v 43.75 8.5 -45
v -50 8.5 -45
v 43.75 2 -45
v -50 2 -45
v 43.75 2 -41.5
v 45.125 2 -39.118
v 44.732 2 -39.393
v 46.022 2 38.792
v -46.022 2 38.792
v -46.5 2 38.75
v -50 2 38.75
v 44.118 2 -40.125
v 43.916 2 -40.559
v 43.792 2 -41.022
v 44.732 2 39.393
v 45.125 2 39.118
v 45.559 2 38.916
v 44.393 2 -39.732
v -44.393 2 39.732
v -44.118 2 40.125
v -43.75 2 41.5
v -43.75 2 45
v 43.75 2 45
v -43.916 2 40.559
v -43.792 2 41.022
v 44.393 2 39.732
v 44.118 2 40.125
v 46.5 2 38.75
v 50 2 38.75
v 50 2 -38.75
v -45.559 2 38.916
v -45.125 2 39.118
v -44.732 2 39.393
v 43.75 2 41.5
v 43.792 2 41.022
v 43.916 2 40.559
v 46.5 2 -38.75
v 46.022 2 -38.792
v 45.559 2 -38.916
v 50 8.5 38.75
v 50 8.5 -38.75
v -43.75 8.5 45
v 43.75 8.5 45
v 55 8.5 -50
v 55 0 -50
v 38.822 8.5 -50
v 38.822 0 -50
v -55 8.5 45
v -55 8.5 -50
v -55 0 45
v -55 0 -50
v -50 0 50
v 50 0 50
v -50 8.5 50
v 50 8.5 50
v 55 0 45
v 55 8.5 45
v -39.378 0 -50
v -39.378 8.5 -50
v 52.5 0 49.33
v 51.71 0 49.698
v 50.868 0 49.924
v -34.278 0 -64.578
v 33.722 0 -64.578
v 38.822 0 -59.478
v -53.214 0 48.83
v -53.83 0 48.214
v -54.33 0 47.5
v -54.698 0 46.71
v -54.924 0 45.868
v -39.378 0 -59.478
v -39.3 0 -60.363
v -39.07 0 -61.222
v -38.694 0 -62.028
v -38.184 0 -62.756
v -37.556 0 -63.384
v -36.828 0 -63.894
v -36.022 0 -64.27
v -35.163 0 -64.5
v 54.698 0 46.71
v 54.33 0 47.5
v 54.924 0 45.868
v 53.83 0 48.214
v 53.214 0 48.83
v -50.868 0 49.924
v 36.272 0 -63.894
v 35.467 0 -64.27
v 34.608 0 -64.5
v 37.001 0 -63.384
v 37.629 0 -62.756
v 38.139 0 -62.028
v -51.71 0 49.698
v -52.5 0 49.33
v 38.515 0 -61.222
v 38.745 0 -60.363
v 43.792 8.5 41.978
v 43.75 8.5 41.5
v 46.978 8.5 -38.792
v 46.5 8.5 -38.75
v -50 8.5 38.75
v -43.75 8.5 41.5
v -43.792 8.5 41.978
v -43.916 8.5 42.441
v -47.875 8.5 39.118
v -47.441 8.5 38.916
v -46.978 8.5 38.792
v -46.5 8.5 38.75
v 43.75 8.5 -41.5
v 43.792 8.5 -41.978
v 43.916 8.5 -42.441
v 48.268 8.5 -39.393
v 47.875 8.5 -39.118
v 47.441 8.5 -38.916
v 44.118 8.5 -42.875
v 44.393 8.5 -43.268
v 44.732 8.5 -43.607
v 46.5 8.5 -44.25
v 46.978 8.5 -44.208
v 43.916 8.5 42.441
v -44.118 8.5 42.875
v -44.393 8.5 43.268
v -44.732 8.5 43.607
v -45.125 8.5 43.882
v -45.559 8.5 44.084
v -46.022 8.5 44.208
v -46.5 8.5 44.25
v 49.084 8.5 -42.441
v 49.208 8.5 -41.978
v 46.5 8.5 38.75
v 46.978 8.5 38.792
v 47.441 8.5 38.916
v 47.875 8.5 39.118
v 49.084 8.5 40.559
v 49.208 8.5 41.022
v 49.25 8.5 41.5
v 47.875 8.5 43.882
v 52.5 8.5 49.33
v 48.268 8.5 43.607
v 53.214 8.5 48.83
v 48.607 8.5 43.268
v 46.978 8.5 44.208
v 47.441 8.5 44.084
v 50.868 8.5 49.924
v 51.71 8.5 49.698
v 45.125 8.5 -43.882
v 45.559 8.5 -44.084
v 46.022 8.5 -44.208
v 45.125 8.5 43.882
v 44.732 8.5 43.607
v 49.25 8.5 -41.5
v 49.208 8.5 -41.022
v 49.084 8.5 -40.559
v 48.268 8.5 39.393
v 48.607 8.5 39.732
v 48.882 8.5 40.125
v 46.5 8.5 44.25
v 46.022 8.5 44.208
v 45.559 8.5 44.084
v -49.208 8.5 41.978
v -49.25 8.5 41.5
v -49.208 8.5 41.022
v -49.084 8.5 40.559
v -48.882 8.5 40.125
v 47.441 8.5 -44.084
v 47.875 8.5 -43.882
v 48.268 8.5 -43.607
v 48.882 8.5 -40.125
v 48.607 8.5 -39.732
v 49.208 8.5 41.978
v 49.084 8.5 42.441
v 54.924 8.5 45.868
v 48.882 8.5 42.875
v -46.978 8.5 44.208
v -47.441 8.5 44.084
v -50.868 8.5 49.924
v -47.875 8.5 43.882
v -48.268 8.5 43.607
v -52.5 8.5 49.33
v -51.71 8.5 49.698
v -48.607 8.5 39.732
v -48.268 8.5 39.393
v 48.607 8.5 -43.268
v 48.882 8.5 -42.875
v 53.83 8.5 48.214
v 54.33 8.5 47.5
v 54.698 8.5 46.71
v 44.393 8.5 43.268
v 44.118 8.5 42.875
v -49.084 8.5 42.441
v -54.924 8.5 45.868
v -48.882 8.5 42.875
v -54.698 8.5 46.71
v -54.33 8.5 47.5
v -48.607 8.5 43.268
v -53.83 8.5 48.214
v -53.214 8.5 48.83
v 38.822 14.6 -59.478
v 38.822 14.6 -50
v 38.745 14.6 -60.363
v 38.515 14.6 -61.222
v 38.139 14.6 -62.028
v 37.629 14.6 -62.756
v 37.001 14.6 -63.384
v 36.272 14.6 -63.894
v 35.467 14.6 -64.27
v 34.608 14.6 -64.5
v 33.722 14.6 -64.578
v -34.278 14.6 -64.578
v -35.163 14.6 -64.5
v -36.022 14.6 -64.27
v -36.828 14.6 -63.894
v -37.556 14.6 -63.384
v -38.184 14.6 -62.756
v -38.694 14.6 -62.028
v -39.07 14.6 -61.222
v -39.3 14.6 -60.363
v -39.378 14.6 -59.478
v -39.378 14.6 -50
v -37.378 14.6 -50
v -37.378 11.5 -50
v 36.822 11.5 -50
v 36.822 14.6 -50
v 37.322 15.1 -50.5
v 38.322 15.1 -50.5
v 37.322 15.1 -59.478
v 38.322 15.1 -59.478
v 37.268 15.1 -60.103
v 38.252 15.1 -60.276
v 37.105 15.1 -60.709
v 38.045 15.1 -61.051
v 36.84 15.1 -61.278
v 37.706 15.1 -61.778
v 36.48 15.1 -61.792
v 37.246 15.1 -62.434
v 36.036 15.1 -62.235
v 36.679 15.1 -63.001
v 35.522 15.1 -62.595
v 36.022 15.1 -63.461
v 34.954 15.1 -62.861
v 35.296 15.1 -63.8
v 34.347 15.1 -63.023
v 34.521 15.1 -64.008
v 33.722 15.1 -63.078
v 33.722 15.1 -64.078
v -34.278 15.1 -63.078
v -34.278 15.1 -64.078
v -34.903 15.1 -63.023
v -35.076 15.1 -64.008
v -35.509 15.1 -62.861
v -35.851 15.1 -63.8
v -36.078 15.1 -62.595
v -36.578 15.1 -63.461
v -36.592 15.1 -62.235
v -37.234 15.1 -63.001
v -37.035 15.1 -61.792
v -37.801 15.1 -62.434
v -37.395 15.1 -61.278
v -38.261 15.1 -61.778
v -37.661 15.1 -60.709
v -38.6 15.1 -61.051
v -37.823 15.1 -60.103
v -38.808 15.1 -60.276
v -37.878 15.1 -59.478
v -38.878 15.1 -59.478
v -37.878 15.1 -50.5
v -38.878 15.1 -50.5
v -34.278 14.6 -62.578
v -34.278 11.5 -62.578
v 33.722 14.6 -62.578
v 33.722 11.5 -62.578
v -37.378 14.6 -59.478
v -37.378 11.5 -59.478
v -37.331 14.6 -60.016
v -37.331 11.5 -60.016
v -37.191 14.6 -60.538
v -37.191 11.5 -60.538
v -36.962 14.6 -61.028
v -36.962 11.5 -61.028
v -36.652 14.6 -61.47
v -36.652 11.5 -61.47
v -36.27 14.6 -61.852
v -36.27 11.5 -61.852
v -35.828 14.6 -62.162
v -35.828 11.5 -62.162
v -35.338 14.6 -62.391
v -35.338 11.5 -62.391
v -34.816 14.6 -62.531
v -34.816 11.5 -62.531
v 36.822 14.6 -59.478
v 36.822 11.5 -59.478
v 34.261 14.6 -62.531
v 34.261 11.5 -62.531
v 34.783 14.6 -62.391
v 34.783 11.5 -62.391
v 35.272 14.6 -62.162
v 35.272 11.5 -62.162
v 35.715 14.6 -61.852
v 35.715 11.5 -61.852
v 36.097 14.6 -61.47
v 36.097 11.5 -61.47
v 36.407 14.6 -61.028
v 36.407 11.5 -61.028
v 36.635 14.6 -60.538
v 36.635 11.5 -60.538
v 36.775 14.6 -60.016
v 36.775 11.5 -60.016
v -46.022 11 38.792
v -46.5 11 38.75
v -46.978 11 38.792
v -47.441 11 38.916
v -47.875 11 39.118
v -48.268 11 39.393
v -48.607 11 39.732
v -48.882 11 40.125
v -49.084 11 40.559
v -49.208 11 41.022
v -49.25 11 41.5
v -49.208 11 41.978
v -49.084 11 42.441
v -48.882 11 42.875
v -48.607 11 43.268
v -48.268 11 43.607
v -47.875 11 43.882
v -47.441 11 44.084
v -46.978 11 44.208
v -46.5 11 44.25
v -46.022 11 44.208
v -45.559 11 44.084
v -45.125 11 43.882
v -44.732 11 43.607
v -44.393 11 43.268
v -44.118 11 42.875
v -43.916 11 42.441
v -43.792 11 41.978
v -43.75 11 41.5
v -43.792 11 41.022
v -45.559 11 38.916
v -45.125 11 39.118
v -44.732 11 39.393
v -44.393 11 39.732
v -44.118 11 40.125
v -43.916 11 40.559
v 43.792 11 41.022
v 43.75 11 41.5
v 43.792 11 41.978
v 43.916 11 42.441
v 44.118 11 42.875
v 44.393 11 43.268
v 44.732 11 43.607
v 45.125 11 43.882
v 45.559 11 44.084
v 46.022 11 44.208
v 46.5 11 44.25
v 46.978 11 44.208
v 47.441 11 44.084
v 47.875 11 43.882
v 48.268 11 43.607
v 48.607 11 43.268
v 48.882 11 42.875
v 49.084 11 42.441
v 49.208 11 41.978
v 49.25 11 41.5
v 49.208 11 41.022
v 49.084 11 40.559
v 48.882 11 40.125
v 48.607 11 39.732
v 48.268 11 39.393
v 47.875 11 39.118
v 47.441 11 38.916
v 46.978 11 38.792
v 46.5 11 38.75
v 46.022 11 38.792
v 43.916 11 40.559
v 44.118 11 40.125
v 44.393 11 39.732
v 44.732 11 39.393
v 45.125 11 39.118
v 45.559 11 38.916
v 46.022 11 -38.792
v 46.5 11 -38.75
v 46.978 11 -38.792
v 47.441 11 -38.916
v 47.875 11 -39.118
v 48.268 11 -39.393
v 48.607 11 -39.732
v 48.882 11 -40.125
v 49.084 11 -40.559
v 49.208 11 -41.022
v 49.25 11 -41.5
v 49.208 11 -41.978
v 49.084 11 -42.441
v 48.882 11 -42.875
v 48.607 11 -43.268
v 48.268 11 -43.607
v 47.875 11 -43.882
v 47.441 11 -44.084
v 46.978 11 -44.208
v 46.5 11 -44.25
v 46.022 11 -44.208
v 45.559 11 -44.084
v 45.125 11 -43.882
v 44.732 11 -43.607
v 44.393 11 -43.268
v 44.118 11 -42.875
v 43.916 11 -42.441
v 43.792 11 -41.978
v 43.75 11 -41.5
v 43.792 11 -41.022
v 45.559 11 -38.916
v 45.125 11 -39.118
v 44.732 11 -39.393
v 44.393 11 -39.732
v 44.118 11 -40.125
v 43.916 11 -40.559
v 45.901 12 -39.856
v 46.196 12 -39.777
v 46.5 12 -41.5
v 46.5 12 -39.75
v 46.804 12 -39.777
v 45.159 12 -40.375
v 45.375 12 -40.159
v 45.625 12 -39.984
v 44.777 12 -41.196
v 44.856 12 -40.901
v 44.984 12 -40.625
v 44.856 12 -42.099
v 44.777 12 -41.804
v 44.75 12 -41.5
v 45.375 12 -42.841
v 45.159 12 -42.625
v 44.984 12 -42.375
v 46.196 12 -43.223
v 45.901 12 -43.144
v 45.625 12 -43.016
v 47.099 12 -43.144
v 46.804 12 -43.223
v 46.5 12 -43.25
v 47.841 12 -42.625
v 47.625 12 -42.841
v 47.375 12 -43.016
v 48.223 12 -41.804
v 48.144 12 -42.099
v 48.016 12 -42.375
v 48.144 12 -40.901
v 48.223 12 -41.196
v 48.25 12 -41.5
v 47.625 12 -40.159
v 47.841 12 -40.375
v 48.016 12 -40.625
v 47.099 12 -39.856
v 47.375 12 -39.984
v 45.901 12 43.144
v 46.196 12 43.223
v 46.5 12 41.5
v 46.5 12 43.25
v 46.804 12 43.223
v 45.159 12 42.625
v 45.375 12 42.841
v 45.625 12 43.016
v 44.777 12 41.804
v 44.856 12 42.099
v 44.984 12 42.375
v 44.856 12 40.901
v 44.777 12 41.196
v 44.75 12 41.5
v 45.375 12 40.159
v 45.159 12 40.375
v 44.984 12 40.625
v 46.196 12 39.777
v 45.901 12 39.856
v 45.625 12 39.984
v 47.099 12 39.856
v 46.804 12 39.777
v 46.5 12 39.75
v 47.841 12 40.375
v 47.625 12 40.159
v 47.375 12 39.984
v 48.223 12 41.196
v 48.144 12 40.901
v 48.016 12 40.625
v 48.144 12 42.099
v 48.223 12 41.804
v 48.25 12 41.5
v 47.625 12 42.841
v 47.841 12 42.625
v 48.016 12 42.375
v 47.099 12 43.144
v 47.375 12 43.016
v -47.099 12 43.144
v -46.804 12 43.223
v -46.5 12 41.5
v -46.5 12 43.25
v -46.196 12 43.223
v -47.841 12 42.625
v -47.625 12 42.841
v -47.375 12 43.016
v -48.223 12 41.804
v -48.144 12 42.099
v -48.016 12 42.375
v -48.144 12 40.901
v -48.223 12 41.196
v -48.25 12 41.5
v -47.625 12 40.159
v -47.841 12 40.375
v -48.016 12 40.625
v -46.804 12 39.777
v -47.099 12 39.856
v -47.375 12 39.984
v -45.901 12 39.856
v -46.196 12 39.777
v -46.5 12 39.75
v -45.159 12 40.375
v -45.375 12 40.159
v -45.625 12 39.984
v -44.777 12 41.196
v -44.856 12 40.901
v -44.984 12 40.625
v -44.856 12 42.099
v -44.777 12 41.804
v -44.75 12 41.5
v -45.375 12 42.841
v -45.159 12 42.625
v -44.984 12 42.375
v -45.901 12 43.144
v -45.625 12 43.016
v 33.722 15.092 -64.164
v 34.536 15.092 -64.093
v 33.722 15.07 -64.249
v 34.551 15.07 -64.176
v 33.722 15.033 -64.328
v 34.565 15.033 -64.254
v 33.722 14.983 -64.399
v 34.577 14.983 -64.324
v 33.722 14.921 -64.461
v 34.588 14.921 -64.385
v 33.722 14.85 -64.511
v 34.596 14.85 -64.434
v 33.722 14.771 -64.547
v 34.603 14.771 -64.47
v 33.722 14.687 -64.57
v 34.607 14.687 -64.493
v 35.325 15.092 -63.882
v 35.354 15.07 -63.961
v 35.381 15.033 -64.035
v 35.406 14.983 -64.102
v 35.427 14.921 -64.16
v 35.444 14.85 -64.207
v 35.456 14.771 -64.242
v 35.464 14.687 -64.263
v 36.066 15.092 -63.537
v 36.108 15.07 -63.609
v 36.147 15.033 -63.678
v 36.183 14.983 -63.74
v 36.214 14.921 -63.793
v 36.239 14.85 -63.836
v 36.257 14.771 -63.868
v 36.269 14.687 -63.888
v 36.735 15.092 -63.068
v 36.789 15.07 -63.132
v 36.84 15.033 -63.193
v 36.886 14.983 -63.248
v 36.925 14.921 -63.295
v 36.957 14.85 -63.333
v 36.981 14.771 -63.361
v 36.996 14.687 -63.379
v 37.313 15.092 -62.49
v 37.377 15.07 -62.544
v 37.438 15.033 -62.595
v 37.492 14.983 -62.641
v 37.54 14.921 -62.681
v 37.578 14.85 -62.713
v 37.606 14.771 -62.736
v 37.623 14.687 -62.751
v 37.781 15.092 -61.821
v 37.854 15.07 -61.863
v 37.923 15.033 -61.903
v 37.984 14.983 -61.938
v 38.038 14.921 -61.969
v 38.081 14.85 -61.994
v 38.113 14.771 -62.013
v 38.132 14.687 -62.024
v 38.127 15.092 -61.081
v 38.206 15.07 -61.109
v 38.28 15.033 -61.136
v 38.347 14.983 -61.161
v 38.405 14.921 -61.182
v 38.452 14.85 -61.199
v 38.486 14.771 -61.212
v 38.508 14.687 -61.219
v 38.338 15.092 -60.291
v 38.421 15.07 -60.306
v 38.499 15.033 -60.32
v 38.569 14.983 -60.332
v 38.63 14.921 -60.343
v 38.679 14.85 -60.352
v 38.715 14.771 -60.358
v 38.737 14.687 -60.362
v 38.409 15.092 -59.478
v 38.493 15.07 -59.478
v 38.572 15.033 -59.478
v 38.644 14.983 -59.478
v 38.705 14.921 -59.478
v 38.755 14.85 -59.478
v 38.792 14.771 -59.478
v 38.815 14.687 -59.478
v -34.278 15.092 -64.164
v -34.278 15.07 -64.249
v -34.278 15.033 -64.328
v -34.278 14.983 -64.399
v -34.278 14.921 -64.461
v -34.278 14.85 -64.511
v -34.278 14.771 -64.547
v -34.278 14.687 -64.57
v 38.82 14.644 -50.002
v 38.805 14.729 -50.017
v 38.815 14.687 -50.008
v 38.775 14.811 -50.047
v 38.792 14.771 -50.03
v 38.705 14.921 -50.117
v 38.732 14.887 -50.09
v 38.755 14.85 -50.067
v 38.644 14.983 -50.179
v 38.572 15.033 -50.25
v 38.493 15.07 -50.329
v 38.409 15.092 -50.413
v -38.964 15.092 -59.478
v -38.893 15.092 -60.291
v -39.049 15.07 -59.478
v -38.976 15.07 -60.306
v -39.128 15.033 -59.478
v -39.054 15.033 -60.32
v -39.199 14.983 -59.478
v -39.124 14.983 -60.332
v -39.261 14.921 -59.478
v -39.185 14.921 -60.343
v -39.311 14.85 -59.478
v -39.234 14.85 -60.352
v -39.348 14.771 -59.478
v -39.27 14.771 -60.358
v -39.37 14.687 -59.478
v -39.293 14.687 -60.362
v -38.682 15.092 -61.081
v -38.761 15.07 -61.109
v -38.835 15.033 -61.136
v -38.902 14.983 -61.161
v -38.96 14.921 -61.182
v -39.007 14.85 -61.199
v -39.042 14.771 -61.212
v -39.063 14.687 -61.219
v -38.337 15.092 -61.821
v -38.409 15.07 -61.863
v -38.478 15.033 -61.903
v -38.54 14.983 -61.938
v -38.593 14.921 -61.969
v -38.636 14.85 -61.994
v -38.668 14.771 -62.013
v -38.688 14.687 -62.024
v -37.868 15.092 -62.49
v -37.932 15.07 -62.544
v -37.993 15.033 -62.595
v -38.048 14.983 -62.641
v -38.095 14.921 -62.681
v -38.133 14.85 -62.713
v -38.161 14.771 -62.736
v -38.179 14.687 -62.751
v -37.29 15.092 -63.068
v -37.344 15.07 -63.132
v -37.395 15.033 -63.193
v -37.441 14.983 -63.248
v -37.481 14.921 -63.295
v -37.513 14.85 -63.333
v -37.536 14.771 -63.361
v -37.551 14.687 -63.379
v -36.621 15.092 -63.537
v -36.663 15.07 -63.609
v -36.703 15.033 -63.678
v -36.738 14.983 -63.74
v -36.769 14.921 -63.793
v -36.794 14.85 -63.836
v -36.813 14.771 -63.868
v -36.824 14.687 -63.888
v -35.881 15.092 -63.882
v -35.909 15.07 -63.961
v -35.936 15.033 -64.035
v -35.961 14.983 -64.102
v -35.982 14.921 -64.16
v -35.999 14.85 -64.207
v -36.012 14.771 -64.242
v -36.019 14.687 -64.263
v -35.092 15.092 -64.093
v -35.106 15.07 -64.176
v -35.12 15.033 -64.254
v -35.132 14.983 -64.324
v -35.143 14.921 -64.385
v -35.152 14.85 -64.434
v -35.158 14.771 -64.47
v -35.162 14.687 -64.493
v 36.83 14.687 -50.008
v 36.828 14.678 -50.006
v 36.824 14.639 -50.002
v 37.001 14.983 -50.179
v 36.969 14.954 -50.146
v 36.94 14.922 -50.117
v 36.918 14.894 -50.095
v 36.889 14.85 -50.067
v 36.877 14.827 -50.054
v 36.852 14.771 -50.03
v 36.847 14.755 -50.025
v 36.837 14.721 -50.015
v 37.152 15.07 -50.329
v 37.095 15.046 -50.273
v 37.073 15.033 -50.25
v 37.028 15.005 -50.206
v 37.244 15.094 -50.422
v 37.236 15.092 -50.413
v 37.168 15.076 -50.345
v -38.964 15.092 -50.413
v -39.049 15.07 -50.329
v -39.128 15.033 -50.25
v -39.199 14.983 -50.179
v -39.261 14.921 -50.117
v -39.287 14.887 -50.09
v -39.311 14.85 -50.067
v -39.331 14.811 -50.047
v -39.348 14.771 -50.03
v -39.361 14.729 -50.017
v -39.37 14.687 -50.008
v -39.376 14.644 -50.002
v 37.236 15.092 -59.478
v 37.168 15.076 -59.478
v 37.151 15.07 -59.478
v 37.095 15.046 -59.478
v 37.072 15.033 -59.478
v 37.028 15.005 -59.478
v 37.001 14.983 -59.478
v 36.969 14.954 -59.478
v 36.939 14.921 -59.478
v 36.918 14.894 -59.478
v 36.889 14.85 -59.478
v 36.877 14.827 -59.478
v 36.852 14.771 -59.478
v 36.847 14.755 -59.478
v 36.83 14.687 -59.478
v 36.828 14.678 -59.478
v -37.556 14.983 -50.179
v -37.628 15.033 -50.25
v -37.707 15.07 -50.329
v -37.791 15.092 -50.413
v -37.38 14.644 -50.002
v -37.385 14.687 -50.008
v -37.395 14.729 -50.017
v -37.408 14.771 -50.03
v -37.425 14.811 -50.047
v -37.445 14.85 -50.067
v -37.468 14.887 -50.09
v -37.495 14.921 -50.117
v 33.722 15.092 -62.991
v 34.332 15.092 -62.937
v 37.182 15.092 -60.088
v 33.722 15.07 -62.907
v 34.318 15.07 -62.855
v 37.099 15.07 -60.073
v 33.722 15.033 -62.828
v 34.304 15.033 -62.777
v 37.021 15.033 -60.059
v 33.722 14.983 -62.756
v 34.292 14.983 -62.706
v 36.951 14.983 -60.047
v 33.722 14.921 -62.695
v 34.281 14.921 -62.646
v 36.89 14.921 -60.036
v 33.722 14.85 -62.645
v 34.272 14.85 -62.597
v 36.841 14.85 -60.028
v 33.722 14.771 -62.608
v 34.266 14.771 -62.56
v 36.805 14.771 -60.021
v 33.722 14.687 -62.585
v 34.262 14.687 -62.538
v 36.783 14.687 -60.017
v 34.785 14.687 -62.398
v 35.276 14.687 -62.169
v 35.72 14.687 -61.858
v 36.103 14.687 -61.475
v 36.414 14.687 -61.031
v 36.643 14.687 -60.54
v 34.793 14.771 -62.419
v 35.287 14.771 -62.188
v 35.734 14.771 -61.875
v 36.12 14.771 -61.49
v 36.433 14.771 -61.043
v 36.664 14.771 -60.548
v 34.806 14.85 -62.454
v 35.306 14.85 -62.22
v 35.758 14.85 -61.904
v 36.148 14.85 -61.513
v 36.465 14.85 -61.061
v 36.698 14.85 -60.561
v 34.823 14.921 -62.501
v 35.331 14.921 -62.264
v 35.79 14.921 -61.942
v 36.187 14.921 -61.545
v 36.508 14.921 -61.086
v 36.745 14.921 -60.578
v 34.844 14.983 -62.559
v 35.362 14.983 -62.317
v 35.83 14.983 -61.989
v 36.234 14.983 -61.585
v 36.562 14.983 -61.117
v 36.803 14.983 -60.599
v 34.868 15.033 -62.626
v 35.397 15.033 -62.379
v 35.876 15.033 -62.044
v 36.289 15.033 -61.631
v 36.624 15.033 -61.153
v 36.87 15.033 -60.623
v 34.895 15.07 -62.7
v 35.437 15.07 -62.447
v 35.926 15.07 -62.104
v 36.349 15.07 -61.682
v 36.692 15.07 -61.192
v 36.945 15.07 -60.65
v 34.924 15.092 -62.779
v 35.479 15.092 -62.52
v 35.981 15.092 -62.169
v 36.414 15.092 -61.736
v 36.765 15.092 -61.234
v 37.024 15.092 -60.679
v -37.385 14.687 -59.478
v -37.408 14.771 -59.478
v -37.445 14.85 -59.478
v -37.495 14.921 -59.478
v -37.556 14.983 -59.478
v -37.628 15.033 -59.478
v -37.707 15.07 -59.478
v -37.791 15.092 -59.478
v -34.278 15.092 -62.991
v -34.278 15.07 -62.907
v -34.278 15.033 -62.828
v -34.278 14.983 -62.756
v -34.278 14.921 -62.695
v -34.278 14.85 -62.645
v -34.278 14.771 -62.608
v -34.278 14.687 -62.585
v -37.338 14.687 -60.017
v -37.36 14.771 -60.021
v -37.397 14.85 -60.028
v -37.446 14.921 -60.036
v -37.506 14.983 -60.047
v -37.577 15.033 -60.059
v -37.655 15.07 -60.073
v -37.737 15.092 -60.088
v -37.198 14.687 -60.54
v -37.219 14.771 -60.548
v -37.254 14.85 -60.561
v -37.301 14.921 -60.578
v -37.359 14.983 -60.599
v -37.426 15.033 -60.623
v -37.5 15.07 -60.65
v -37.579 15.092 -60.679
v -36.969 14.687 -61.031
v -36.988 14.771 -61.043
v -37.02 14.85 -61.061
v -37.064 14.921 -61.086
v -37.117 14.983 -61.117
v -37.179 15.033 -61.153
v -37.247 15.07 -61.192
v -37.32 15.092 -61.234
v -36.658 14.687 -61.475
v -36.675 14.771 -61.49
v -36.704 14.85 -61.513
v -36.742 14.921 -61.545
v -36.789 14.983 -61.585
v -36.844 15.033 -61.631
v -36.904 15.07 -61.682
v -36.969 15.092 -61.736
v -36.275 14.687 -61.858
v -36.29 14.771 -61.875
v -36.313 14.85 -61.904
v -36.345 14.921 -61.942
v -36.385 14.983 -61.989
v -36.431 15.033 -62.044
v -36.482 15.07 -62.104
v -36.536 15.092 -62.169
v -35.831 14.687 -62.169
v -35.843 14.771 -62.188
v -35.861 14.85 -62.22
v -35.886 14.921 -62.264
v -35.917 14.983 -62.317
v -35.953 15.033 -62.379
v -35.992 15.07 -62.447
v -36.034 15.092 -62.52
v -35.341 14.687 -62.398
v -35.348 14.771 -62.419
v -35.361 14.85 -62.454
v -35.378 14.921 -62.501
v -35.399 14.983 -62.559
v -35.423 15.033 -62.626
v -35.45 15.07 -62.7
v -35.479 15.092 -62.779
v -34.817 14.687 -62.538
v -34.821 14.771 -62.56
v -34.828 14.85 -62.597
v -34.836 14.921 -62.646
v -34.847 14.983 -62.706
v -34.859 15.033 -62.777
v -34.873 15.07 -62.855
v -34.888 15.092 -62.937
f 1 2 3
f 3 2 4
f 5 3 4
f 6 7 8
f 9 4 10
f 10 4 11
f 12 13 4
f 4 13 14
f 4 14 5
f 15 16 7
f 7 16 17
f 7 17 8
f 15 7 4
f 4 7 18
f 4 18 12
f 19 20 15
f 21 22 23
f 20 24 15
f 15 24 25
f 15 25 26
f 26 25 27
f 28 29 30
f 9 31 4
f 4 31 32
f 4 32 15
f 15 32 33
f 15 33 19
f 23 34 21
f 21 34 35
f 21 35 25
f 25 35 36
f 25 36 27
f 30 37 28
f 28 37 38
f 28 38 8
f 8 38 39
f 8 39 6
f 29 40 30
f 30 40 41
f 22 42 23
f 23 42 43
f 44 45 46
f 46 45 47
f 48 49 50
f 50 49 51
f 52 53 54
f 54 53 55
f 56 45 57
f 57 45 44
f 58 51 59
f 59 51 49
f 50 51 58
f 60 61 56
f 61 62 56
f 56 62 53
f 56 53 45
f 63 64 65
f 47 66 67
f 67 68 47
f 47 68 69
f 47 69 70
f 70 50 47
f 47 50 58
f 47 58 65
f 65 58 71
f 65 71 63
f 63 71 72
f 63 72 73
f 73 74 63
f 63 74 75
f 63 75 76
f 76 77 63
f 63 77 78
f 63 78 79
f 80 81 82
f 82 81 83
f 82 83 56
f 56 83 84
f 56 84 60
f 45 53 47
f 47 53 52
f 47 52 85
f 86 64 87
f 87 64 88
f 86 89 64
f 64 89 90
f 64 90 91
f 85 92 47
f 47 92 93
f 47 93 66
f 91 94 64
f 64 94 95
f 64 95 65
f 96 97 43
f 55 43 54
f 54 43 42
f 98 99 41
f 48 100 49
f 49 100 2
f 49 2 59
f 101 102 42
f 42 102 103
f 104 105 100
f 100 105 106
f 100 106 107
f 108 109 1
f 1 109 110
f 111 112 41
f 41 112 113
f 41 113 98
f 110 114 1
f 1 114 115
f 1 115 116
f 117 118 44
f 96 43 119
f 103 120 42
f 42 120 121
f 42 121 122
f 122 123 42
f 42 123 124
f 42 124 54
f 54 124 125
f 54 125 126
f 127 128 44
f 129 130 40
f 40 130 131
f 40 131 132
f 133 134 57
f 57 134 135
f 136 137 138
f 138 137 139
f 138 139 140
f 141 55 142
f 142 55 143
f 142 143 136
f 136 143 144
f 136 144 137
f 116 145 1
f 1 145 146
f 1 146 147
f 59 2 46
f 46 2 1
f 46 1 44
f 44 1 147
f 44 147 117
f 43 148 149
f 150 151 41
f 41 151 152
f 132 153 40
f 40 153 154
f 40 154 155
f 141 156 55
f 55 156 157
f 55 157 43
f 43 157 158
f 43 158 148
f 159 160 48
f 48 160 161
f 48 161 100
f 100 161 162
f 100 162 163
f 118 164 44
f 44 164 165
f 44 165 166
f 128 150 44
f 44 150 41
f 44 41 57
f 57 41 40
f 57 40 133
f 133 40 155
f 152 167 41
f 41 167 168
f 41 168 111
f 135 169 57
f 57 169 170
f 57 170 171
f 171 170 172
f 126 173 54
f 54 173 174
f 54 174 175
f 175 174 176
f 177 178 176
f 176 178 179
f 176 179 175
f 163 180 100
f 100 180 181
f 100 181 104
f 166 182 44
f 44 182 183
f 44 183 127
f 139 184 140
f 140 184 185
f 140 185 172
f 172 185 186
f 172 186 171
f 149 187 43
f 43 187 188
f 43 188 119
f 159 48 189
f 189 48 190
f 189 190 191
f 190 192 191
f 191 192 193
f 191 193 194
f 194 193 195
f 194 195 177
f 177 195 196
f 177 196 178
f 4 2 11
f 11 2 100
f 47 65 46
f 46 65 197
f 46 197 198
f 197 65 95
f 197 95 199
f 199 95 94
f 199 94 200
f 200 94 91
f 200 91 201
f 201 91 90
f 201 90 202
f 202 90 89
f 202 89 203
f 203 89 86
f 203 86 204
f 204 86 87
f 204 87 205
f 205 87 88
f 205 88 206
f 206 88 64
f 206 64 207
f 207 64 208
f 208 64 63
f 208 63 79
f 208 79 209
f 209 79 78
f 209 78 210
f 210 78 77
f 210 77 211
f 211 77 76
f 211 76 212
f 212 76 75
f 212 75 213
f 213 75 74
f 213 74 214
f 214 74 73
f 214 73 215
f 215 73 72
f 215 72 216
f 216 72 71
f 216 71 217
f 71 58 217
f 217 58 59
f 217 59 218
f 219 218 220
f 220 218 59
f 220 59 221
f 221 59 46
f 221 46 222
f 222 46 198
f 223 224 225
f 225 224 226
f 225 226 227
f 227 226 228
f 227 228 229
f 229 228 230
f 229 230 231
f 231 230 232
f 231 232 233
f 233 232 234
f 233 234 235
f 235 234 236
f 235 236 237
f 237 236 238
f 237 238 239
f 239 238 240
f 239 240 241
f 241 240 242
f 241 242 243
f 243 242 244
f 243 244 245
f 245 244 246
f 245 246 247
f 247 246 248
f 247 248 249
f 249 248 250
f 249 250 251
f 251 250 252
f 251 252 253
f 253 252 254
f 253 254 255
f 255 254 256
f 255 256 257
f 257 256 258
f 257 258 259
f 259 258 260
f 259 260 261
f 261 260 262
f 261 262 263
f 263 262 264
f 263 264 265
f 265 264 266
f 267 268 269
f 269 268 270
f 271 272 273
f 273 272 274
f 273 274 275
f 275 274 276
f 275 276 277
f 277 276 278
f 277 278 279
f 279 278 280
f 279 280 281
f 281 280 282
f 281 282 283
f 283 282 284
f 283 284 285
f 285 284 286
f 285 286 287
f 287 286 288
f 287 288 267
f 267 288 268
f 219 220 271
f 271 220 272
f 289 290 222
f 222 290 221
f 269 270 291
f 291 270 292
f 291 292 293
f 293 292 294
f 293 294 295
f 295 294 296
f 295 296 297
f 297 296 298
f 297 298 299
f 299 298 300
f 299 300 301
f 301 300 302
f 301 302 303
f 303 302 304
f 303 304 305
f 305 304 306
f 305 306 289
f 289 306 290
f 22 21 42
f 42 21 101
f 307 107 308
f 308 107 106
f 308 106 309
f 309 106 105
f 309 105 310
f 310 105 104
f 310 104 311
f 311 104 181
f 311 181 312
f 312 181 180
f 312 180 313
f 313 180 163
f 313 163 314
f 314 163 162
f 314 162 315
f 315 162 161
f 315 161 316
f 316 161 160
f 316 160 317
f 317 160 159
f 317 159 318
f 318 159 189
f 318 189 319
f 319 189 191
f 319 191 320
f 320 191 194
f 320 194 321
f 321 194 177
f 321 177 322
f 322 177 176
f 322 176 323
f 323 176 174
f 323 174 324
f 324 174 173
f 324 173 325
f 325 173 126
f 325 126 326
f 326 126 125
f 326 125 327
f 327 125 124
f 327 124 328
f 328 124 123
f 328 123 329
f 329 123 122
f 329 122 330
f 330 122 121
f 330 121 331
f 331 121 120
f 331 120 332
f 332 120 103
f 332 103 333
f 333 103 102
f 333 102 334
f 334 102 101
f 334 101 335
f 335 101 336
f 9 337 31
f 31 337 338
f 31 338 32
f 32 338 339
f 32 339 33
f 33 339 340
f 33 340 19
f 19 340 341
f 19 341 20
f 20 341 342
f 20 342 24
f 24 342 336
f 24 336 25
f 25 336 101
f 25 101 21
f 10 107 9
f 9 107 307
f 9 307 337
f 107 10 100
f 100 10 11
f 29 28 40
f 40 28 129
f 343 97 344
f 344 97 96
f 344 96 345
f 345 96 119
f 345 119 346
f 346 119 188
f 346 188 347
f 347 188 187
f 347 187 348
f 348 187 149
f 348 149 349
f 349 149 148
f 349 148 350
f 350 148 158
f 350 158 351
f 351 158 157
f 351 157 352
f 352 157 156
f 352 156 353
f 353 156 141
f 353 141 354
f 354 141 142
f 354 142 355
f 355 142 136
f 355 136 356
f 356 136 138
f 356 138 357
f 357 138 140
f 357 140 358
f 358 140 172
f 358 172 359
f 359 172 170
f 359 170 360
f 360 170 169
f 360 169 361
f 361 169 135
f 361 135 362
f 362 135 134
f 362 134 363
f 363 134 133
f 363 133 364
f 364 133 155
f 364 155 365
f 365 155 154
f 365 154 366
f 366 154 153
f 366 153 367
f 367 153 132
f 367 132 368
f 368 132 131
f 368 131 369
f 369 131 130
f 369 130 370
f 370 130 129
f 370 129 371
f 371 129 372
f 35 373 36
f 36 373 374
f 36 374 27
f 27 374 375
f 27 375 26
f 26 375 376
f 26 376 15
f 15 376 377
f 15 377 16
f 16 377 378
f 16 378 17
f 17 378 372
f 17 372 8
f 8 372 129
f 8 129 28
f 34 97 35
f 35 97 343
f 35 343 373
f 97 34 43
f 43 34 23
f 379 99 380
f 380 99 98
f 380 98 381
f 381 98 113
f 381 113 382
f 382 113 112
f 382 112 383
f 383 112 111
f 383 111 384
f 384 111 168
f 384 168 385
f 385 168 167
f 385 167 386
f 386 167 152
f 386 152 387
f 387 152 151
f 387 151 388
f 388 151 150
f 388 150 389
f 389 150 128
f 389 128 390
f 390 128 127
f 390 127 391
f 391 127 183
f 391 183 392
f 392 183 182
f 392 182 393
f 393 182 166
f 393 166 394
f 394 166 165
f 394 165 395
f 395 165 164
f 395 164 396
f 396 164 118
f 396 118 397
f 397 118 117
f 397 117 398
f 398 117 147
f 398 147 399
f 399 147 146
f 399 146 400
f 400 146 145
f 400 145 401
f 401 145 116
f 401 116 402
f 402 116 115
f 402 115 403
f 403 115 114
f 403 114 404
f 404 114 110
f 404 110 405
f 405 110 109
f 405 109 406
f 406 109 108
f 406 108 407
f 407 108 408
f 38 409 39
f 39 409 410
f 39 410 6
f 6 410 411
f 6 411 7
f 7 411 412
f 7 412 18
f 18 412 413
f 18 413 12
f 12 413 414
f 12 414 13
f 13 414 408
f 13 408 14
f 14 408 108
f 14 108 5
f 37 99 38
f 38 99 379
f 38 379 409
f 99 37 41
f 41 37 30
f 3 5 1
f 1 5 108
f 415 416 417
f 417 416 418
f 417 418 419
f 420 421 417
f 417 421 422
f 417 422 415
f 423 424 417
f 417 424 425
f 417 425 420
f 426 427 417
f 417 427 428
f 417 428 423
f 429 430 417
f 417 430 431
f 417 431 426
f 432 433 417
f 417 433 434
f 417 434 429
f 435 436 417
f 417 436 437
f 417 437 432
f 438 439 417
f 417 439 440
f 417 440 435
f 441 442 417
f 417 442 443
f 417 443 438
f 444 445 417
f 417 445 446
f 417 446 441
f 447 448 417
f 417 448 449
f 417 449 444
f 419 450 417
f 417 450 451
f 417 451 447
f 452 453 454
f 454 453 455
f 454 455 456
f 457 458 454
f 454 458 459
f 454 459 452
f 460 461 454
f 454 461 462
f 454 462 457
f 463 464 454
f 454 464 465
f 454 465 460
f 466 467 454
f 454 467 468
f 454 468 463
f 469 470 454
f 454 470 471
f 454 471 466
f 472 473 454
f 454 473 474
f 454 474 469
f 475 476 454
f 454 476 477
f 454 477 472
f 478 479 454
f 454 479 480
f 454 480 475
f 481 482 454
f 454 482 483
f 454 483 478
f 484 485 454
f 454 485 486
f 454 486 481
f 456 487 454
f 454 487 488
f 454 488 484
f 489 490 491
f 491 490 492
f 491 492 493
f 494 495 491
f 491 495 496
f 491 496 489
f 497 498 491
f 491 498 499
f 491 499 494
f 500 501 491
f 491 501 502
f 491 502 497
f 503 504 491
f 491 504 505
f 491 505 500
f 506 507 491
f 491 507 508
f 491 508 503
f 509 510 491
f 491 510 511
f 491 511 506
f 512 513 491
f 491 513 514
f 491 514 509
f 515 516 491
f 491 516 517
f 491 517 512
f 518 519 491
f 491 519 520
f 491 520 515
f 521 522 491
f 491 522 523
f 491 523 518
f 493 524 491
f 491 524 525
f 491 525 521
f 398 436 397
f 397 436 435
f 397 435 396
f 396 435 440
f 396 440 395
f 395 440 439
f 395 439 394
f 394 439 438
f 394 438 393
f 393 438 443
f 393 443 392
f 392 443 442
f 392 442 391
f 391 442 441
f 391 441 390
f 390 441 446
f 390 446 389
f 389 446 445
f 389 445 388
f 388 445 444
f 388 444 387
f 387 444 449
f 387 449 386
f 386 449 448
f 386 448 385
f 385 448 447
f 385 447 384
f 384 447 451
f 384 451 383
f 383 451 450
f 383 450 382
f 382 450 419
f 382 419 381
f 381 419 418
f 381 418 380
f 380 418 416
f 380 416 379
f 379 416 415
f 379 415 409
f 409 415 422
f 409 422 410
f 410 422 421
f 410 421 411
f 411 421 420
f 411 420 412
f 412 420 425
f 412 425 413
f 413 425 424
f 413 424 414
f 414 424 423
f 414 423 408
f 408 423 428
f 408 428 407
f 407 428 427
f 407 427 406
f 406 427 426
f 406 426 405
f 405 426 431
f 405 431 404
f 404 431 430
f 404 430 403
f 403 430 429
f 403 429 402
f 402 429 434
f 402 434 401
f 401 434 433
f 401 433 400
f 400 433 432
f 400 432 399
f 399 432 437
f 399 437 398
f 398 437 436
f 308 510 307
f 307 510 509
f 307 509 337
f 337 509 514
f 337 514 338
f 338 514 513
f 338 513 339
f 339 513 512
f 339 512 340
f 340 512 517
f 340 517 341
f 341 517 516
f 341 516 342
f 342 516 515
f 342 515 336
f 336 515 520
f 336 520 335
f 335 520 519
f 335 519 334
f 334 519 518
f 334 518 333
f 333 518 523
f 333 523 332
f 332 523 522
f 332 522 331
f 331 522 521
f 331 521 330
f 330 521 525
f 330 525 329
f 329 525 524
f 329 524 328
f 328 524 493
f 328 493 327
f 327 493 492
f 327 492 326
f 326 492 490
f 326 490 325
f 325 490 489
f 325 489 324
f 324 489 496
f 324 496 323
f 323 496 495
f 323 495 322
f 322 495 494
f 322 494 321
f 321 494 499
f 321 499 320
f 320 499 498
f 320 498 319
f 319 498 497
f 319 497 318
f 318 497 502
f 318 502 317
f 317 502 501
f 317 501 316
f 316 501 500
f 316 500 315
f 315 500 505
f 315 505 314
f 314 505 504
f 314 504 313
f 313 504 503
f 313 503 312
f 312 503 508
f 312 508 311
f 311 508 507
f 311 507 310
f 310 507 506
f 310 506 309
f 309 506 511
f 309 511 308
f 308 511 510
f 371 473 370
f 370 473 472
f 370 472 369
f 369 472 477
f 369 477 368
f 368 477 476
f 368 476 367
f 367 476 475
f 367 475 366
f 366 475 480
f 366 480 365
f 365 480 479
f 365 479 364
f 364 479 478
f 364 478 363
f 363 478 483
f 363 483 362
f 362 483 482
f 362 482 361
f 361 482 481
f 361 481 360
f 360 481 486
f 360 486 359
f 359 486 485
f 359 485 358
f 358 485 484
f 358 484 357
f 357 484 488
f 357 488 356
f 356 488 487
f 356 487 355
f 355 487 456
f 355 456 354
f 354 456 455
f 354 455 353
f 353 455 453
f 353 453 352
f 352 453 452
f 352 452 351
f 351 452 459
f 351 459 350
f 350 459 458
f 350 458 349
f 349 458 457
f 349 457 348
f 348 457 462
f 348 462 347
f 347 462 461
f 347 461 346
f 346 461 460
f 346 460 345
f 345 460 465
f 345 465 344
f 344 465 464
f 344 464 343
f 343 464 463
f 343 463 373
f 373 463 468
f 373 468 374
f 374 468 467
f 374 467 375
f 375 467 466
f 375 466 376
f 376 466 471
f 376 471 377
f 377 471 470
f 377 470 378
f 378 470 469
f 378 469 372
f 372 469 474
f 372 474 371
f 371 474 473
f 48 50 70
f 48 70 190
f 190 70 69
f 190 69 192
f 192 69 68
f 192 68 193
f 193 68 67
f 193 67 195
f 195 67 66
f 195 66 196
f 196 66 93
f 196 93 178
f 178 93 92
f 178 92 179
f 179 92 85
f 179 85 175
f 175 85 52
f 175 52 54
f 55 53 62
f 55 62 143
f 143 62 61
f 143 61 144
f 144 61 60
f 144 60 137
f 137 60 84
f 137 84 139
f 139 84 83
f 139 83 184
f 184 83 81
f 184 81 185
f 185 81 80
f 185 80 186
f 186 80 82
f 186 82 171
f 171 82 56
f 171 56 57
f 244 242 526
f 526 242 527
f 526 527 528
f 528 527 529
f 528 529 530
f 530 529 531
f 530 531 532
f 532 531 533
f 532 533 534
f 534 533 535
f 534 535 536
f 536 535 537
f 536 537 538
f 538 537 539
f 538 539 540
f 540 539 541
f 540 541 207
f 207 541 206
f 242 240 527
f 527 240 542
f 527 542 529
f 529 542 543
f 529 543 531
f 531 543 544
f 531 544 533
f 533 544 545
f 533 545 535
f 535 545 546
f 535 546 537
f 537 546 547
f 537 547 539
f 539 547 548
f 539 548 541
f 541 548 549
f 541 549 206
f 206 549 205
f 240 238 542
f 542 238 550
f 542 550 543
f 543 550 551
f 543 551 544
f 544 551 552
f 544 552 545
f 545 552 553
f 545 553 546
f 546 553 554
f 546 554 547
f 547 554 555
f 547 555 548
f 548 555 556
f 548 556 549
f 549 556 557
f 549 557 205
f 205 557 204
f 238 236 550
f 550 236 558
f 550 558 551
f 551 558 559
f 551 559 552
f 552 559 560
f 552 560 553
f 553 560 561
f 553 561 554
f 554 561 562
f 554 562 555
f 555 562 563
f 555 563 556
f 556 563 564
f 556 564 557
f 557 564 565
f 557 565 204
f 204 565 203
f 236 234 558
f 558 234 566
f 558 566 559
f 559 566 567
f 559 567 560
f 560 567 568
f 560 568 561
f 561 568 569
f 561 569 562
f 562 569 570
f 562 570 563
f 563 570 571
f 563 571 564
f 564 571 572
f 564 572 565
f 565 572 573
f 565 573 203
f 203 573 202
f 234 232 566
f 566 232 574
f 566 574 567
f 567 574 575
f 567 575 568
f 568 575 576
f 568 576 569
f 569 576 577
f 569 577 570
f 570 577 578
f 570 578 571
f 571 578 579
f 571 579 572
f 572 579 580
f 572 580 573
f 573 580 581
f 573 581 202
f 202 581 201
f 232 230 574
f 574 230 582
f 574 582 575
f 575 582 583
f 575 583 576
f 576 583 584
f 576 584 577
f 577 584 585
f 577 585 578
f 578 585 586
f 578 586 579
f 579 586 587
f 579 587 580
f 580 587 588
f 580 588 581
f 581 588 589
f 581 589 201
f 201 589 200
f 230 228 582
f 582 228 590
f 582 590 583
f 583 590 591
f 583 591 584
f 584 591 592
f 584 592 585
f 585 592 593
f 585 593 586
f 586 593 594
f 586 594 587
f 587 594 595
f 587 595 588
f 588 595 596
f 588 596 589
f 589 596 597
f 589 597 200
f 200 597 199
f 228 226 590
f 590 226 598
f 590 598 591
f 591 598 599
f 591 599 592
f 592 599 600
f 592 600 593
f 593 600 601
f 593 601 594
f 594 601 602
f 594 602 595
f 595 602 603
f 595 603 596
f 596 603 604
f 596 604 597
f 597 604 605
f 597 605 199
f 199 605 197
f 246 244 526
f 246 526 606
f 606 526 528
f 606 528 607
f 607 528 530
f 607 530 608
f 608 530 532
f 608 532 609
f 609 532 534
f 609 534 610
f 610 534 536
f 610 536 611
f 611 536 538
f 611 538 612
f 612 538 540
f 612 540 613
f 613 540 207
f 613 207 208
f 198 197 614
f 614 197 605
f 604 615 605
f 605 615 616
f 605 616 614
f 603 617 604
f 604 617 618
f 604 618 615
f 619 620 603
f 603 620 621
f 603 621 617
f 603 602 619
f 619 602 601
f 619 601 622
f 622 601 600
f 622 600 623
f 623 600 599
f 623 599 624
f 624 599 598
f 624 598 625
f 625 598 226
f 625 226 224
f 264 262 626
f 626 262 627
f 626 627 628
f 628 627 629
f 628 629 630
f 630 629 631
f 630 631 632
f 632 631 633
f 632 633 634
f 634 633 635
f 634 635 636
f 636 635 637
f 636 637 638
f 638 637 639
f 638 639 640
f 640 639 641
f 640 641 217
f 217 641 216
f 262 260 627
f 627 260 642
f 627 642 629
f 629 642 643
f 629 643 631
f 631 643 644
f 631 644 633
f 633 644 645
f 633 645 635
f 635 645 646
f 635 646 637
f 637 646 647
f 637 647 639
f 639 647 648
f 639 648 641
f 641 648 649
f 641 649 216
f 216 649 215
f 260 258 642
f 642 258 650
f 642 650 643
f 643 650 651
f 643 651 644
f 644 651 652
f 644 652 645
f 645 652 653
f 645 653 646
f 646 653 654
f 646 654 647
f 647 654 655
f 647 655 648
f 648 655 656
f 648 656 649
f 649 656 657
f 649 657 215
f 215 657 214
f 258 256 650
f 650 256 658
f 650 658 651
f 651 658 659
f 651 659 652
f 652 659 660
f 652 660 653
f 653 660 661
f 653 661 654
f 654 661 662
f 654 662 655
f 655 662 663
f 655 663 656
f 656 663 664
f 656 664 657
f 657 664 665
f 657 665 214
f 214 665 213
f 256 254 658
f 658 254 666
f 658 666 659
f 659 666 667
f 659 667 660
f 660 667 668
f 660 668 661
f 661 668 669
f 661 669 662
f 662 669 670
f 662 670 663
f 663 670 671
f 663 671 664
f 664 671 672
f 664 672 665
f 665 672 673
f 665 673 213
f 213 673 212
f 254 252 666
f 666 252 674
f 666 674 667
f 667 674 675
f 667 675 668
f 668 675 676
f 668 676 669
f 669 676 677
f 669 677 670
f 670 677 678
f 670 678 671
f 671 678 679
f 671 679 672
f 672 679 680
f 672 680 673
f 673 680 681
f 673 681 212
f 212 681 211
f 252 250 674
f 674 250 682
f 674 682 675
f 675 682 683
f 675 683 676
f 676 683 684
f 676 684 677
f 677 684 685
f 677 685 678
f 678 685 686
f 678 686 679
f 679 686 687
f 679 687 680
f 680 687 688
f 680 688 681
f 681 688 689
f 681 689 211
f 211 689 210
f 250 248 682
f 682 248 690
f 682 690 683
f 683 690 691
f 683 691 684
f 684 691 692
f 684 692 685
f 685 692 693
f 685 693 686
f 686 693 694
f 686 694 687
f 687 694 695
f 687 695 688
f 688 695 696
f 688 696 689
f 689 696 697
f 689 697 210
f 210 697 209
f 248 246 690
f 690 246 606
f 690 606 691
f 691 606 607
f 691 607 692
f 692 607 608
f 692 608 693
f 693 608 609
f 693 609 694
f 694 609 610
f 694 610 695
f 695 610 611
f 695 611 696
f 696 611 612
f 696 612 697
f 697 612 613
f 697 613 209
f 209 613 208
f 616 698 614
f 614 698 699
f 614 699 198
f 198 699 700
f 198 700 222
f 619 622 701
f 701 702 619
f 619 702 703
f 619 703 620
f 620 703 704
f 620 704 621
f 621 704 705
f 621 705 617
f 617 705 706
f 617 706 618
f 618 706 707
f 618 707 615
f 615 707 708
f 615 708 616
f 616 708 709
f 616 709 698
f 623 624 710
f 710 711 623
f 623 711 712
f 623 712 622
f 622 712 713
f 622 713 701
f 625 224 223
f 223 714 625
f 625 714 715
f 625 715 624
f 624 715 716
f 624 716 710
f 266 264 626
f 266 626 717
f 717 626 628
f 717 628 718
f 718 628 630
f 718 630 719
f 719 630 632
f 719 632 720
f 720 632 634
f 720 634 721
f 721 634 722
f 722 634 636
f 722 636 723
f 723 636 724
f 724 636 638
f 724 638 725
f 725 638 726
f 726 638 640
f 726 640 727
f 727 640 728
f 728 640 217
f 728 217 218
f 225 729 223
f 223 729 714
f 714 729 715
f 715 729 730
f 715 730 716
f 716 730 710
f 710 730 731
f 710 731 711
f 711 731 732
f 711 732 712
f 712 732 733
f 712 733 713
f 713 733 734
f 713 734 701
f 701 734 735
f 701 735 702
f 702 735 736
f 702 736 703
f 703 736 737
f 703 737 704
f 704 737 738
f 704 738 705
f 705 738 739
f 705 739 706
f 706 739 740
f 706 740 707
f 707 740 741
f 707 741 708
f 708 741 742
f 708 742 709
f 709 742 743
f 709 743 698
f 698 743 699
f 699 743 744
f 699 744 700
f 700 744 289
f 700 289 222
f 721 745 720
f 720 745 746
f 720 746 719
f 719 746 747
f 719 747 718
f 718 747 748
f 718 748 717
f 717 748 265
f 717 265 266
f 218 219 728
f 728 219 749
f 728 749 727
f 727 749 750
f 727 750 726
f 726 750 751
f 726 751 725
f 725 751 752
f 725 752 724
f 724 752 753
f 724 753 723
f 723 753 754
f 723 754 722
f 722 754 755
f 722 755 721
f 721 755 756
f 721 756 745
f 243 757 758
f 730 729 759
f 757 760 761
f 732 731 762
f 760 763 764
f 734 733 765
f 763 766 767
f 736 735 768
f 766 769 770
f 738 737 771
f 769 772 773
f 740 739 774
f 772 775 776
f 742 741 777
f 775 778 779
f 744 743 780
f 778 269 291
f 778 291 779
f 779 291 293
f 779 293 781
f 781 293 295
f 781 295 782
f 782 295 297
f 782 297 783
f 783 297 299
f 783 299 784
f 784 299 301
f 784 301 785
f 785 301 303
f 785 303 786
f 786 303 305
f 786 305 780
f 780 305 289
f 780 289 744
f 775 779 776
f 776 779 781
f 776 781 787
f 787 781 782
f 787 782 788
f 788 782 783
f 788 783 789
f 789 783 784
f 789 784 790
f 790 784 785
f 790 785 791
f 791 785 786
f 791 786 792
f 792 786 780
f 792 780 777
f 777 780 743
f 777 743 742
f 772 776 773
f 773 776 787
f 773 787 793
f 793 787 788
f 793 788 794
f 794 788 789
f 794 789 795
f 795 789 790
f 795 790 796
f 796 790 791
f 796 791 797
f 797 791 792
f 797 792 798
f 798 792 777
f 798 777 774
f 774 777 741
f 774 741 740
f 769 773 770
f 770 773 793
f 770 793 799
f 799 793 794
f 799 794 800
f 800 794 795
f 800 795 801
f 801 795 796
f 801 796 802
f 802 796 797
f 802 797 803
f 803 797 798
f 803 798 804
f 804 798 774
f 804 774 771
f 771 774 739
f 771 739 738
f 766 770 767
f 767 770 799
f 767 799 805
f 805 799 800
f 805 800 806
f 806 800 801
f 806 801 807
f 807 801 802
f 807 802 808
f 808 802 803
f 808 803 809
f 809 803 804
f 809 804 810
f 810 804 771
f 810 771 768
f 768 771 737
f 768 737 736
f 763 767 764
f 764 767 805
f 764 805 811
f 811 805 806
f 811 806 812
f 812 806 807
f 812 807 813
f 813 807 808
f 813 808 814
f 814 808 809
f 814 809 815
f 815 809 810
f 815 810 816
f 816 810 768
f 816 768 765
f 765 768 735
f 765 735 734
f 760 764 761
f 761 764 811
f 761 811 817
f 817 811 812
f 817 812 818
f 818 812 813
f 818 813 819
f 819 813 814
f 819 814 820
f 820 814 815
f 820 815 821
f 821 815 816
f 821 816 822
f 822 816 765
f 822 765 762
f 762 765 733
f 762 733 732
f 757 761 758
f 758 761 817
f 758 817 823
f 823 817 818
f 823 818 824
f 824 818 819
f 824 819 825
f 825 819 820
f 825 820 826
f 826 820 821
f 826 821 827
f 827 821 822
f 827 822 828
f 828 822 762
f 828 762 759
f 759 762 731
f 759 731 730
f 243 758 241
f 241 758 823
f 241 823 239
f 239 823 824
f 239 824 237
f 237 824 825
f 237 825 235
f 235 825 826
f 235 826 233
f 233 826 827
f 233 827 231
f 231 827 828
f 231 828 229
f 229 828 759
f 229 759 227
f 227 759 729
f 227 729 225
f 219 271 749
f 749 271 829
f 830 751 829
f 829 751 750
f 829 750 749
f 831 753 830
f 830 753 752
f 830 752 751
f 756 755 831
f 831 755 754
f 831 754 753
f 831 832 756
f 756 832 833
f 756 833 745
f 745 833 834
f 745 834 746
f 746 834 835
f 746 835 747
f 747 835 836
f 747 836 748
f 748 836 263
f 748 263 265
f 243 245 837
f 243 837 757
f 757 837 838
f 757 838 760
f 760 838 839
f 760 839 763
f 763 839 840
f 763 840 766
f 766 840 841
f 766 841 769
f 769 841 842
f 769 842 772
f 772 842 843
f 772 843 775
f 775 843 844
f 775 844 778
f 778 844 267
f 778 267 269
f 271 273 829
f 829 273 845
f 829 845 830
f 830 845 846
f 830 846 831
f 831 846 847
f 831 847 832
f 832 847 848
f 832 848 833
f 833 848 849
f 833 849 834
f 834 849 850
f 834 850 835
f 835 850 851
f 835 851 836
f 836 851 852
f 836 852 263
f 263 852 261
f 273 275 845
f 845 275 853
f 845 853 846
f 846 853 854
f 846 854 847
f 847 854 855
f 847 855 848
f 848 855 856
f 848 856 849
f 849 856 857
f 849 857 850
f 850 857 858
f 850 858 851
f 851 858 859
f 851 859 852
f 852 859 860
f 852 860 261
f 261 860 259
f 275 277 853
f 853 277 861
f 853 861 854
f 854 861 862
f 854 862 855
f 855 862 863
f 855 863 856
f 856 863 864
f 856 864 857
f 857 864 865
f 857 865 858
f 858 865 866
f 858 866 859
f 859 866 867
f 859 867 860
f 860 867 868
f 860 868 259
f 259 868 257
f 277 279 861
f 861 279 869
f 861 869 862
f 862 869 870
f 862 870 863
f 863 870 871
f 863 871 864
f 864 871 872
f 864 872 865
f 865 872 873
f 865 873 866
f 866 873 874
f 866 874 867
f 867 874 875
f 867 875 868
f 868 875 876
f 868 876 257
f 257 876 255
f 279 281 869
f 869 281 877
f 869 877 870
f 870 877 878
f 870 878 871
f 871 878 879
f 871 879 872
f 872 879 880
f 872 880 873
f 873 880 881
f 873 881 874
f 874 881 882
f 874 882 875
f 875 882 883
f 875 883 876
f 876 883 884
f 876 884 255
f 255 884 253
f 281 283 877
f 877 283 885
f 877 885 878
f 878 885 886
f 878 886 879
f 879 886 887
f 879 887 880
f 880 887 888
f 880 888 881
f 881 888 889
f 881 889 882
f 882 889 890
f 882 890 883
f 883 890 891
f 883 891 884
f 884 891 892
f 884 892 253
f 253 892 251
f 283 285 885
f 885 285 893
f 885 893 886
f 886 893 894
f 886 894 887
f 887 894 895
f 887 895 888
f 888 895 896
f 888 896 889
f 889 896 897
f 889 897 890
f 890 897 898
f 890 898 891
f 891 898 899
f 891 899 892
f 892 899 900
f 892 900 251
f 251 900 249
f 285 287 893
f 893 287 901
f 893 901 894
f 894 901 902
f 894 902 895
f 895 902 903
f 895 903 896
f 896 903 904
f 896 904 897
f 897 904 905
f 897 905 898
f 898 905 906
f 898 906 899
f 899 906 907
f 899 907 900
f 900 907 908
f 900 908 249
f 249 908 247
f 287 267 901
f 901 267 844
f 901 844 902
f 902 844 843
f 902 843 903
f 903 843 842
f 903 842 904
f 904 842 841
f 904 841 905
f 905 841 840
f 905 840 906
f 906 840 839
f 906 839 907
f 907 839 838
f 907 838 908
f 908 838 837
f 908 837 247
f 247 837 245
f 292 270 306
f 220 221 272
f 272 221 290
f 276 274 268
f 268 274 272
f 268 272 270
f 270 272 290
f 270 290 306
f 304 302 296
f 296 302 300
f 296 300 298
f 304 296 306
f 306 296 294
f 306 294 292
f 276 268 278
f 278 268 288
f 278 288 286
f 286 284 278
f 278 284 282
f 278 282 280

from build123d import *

# Parameters (mm, degrees)
SKETCH1_W           = 110
SKETCH1_H           = 100
BOSS_EXTRUDE1_DEPTH = 2
SKETCH2_W           = 110
SKETCH2_H           = 100
SKETCH2_W_2         = 100
SKETCH2_H_2         = 90
BOSS_EXTRUDE2_DEPTH = 6.5
BOSS_EXTRUDE3_DEPTH = 13.5
BOSS_EXTRUDE4_START = -15.1
BOSS_EXTRUDE4_DEPTH = 1.6
SKETCH4_R           = 2.75
BOSS_EXTRUDE5_DEPTH = 6.5
SKETCH4_3_R         = 2.75
BOSS_EXTRUDE6_DEPTH = 10
CHAMFER1_SIZE       = 1
FILLET1_R           = 5
FILLET2_R           = 0.5
CUT_EXTRUDE1_DEPTH  = 2


# Read off the part's stored shape, not the designer's step: Boss-Extrude4
with BuildPart() as part:
    # Sketch1 → Boss-Extrude1 (new body)
    with BuildSketch(Plane(origin=(0, 0, 0), x_dir=(1, 0, 0), z_dir=(0, 1, 0))):
        Rectangle(SKETCH1_W, SKETCH1_H)
    extrude(amount=BOSS_EXTRUDE1_DEPTH)

    # Sketch2 → Boss-Extrude2 (add)
    with BuildSketch(Plane(origin=(0, 2, 0), x_dir=(1, 0, 0), z_dir=(0, 1, 0))):
        Rectangle(SKETCH2_W, SKETCH2_H)
        Rectangle(SKETCH2_W_2, SKETCH2_H_2, mode=Mode.SUBTRACT)
    extrude(amount=BOSS_EXTRUDE2_DEPTH)

    # Sketch3 → Boss-Extrude3 (add)
    with BuildSketch(Plane.XZ):
        with BuildLine():
            Line((-39.37766222, -50), (-39.37766222, -59.477632813))
            ThreePointArc((-39.37766222, -59.477632813), (-37.883906804, -63.083877397), (-34.27766222, -64.577632813))
            Line((-34.27766222, -64.577632813), (33.72233778, -64.577632813))
            ThreePointArc((33.72233778, -64.577632813), (37.328582364, -63.083877397), (38.82233778, -59.477632813))
            Line((38.82233778, -59.477632813), (38.82233778, -50))
            Line((38.82233778, -50), (-39.37766222, -50))
        make_face()
    extrude(amount=-BOSS_EXTRUDE3_DEPTH)

    # Boss-Extrude4 outline → Boss-Extrude4 (add)
    with BuildSketch(Plane.XZ.offset(BOSS_EXTRUDE4_START)):
        with BuildLine():
            Line((38.82233778, -59.477632813), (38.82233778, -50))
            Line((38.82233778, -50), (36.82233778, -50))
            Line((36.82233778, -50), (36.82233778, -59.477632813))
            ThreePointArc((36.82233778, -59.477632813), (35.914368802, -61.669663835), (33.72233778, -62.577632813))
            Line((33.72233778, -62.577632813), (-34.27766222, -62.577632813))
            ThreePointArc((-34.27766222, -62.577632813), (-36.469693242, -61.669663835), (-37.37766222, -59.477632813))
            Line((-37.37766222, -59.477632813), (-37.37766222, -50))
            Line((-37.37766222, -50), (-39.37766222, -50))
            Line((-39.37766222, -50), (-39.37766222, -59.477632813))
            ThreePointArc((-39.37766222, -59.477632813), (-37.883906804, -63.083877397), (-34.27766222, -64.577632813))
            Line((-34.27766222, -64.577632813), (33.72233778, -64.577632813))
            ThreePointArc((33.72233778, -64.577632813), (37.328582364, -63.083877397), (38.82233778, -59.477632813))
        make_face()
    extrude(amount=BOSS_EXTRUDE4_DEPTH)

    # Sketch4 → Boss-Extrude5 (add)
    with BuildSketch(Plane(origin=(0, 2, 0), x_dir=(1, 0, 0), z_dir=(0, 1, 0))):
        with BuildLine():
            Line((-50, -38.75), (-50, -45))
            Line((-50, -45), (-43.75, -45))
            Line((-43.75, -45), (-43.75, -41.5))
            ThreePointArc((-43.75, -41.5), (-48.444543648, -43.444543648), (-46.5, -38.75))
            Line((-46.5, -38.75), (-50, -38.75))
        make_face()
        with Locations((-46.5, -41.5)):
            Circle(SKETCH4_R)
        with BuildLine():
            Line((43.75, -41.5), (43.75, -45))
            Line((43.75, -45), (50, -45))
            Line((50, -45), (50, -38.75))
            Line((50, -38.75), (46.5, -38.75))
            ThreePointArc((46.5, -38.75), (48.444543648, -39.555456352), (49.25, -41.5))
            ThreePointArc((49.25, -41.5), (46.5, -44.25), (43.75, -41.5))
        make_face()
        with Locations((46.5, -41.5)):
            Circle(SKETCH4_R)
        with Locations((46.5, 41.5)):
            Circle(SKETCH4_R)
        with BuildLine():
            Line((50, 45), (43.75, 45))
            Line((43.75, 45), (43.75, 41.5))
            ThreePointArc((43.75, 41.5), (46.5, 44.25), (49.25, 41.5))
            ThreePointArc((49.25, 41.5), (48.444543648, 39.555456352), (46.5, 38.75))
            Line((46.5, 38.75), (50, 38.75))
            Line((50, 38.75), (50, 45))
        make_face()
    extrude(amount=BOSS_EXTRUDE5_DEPTH)

    # Sketch4<3> → Boss-Extrude6 (add)
    with BuildSketch(Plane(origin=(0, 2, 0), x_dir=(1, 0, 0), z_dir=(0, 1, 0))):
        with Locations(Location((46.5, 41.5, 0), (0, 0, 270))):
            Circle(SKETCH4_3_R)
        with Locations(Location((46.5, -41.5, 0), (0, 0, 90))):
            Circle(SKETCH4_3_R)
        with Locations(Location((-46.5, -41.5, 0), (0, 0, 90))):
            Circle(SKETCH4_3_R)
    extrude(amount=BOSS_EXTRUDE6_DEPTH)

    # Chamfer1
    chamfer1_edges = [part.edges().sort_by_distance(p)[0] for p in [
        (46.5, 12, -44.25),
        (46.5, 12, 44.25),
        (-46.5, 12, 44.25),
    ]]
    chamfer(chamfer1_edges, length=CHAMFER1_SIZE)

    # Fillet1
    fillet1_edges = [part.edges().sort_by_distance(p)[0] for p in [
        (55, 4.25, 50),
        (-55, 4.25, 50),
    ]]
    fillet(fillet1_edges, radius=FILLET1_R)

    # Fillet2
    fillet2_edges = [part.edges().sort_by_distance(p)[0] for p in [
        (35.914368802, 15.1, -61.669663835),
        (37.82233778, 15.1, -50),
        (38.82233778, 15.1, -54.738816406),
        (-0.27766222, 15.1, -64.577632813),
        (-39.37766222, 15.1, -54.738816406),
        (-38.37766222, 15.1, -50),
        (-36.469693242, 15.1, -61.669663835),
        (-0.27766222, 15.1, -62.577632813),
        (-37.37766222, 15.1, -54.738816406),
        (-37.883906804, 15.1, -63.083877397),
        (37.328582364, 15.1, -63.083877397),
        (36.82233778, 15.1, -54.738816406),
    ]]
    fillet(fillet2_edges, radius=FILLET2_R)

    # Sketch5 → Cut-Extrude1 (cut)
    with BuildSketch(Plane(origin=(0, 13.5, 0), x_dir=(1, 0, 0), z_dir=(0, 1, 0))):
        with BuildLine():
            Line((-37.37766222, 59.477632813), (-37.37766222, 50))
            Line((-37.37766222, 50), (36.82233778, 50))
            Line((36.82233778, 50), (36.82233778, 59.477632813))
            ThreePointArc((36.82233778, 59.477632813), (35.914368802, 61.669663835), (33.72233778, 62.577632813))
            Line((33.72233778, 62.577632813), (-34.27766222, 62.577632813))
            ThreePointArc((-34.27766222, 62.577632813), (-36.469693242, 61.669663835), (-37.37766222, 59.477632813))
        make_face()
    extrude(amount=-CUT_EXTRUDE1_DEPTH, mode=Mode.SUBTRACT)


solid = part.part
